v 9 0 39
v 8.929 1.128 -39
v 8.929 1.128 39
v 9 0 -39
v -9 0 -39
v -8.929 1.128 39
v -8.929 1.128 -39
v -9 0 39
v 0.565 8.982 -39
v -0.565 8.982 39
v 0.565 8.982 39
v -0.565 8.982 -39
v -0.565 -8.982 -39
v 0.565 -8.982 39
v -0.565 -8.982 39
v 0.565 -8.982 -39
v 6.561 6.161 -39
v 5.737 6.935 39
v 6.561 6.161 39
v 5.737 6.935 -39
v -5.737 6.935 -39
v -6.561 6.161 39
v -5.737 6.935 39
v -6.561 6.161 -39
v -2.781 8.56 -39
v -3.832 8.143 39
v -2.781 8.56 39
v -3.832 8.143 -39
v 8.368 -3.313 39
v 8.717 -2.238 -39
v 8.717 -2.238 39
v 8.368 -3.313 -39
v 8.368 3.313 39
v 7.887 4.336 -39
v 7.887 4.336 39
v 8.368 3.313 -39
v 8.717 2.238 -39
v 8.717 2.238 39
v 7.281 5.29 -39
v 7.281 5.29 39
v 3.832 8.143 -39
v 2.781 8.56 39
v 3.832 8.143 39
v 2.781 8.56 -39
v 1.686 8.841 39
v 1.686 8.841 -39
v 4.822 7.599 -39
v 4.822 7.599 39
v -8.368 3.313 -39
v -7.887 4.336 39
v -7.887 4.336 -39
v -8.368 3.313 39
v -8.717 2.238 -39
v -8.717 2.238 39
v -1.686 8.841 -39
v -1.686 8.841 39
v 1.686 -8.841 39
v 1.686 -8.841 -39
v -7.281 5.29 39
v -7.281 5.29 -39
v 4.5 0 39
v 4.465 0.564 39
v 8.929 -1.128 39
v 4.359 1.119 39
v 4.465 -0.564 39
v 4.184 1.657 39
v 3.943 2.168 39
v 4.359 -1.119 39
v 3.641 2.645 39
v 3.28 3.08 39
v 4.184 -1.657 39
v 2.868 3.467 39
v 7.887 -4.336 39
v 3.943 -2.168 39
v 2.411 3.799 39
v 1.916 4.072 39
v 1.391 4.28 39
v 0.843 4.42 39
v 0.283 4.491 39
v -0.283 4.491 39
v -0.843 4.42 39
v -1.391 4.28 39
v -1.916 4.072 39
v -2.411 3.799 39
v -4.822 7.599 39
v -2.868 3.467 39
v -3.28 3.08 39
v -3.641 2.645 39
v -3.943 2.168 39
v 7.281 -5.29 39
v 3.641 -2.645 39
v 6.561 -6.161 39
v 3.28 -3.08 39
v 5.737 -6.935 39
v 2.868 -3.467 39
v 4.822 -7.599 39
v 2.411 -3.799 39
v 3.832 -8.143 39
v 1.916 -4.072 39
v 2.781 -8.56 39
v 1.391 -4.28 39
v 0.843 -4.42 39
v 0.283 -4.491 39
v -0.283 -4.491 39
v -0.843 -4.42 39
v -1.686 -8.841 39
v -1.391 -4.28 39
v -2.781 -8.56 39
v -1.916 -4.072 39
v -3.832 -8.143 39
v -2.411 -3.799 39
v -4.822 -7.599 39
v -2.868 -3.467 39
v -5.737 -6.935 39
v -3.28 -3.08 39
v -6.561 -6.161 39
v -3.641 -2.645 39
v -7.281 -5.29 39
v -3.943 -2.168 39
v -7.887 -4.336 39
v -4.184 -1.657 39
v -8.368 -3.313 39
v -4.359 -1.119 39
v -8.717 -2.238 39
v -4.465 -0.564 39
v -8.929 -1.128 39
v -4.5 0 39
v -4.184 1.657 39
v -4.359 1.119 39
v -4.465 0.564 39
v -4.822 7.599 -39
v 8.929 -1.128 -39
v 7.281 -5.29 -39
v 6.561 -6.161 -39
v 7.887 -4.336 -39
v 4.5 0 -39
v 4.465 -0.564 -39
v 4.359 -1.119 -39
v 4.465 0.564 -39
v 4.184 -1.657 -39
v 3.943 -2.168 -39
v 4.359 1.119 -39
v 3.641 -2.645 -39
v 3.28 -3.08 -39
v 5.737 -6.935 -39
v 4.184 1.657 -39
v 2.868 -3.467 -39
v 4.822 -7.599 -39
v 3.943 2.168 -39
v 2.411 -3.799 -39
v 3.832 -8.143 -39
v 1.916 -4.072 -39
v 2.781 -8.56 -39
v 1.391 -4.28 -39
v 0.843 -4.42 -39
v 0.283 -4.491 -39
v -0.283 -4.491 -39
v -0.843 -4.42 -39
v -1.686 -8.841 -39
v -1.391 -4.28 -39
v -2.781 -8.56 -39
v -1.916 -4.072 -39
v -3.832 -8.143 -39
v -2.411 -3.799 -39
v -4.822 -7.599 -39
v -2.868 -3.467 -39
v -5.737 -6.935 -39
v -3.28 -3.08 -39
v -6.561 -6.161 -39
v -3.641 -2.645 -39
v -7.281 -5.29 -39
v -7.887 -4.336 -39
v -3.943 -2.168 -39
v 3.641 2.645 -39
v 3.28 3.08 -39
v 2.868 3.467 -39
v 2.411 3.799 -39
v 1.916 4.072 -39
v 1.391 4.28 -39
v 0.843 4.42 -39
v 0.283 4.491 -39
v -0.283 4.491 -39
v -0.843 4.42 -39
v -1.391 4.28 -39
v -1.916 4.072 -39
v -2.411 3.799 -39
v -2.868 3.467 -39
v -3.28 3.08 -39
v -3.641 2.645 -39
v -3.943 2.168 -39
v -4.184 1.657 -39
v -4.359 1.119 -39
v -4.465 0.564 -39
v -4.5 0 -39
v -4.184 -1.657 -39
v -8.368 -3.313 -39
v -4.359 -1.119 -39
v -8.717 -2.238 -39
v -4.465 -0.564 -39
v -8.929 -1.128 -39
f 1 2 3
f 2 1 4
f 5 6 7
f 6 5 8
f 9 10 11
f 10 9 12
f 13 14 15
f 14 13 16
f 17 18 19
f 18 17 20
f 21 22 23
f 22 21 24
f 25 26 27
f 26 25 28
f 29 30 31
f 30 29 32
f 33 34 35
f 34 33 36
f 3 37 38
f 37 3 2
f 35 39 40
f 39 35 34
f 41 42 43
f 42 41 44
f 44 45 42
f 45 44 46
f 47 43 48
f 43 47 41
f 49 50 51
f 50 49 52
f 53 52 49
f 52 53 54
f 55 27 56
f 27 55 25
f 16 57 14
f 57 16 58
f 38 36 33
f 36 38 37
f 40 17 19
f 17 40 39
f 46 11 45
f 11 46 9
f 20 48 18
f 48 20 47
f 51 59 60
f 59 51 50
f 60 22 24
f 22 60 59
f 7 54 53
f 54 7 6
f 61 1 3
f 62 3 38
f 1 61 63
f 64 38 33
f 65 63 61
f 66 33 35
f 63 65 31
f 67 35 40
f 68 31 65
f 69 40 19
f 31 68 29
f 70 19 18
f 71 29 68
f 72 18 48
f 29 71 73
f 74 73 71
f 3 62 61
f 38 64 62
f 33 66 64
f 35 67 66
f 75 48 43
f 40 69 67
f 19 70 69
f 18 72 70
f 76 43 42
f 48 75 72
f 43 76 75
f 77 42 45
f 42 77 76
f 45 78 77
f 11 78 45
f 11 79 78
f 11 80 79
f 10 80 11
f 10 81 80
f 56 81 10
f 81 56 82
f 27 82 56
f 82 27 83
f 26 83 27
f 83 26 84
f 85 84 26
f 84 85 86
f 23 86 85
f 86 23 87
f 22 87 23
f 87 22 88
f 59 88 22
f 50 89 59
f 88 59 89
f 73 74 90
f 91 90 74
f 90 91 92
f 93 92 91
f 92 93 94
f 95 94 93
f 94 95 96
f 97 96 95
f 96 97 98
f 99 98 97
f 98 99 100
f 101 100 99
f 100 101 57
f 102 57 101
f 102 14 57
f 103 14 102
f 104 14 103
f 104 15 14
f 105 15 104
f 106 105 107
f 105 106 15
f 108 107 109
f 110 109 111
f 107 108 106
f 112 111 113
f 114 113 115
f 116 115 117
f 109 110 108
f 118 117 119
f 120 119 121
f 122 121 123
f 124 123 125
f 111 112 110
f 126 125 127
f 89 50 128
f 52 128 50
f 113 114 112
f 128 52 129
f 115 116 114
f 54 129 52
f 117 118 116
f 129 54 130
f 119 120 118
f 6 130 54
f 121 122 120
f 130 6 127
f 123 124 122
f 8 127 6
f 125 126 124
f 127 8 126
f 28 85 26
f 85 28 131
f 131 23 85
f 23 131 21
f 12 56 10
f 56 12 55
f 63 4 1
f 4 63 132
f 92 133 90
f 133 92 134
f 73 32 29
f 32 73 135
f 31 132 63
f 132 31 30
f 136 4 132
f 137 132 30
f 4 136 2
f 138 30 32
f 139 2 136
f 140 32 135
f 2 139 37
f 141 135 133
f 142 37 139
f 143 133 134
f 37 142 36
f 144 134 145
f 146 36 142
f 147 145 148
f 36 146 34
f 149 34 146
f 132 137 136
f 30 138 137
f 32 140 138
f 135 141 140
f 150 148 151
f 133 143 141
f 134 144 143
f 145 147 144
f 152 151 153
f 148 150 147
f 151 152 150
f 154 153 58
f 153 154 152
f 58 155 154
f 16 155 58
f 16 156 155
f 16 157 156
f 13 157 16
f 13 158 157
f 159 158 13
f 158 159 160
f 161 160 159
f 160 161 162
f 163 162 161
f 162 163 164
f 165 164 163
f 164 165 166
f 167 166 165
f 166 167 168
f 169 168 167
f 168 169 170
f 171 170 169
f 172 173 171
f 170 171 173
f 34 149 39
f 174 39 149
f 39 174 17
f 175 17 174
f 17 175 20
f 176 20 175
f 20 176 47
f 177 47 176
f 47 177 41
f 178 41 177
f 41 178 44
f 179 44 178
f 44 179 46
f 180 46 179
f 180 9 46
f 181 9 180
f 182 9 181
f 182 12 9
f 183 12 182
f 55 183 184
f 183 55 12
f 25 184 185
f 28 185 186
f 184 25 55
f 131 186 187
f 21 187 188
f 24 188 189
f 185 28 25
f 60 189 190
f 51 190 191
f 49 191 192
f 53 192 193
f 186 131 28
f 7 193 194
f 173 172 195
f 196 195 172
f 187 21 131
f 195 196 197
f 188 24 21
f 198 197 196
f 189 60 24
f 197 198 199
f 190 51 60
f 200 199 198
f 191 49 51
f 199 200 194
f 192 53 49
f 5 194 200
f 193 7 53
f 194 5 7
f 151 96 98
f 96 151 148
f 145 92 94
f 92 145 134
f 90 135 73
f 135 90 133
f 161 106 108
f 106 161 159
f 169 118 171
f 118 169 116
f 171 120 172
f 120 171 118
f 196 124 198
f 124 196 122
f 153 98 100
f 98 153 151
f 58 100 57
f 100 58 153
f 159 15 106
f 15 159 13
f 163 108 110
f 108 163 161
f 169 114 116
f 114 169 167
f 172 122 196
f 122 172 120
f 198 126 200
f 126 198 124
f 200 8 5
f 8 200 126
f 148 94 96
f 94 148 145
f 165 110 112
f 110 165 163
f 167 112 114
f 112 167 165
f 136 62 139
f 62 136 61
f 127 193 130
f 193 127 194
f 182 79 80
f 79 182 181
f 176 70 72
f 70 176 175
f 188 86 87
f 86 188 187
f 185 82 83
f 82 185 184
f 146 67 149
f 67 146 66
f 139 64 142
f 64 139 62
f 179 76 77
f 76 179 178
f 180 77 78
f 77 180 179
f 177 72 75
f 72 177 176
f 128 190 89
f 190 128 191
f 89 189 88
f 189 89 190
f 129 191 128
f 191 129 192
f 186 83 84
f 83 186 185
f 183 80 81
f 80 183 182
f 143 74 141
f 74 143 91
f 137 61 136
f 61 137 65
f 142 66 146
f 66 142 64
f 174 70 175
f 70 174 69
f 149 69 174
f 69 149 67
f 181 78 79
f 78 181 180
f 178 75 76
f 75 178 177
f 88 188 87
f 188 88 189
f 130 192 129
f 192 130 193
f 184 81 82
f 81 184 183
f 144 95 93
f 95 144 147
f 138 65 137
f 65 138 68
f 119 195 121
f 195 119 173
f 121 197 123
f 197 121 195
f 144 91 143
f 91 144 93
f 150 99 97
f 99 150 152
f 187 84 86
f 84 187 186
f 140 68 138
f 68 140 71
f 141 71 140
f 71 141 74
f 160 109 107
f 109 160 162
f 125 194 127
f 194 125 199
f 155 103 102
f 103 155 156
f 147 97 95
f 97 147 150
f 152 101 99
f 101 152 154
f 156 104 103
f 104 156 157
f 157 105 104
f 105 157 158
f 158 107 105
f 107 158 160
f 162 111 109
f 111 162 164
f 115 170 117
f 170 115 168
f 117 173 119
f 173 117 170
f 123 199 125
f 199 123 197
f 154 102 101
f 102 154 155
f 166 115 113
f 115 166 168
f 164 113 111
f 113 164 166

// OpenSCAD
$fn = 50;


difference() {
	union() {
		translate(v = [0, 0, -39.0000000000]) {
			cylinder(h = 78, r = 9.0000000000);
		}
	}
	union() {
		translate(v = [0, 0, -100.0000000000]) {
			cylinder(h = 200, r = 4.5000000000);
		}
	}
}
